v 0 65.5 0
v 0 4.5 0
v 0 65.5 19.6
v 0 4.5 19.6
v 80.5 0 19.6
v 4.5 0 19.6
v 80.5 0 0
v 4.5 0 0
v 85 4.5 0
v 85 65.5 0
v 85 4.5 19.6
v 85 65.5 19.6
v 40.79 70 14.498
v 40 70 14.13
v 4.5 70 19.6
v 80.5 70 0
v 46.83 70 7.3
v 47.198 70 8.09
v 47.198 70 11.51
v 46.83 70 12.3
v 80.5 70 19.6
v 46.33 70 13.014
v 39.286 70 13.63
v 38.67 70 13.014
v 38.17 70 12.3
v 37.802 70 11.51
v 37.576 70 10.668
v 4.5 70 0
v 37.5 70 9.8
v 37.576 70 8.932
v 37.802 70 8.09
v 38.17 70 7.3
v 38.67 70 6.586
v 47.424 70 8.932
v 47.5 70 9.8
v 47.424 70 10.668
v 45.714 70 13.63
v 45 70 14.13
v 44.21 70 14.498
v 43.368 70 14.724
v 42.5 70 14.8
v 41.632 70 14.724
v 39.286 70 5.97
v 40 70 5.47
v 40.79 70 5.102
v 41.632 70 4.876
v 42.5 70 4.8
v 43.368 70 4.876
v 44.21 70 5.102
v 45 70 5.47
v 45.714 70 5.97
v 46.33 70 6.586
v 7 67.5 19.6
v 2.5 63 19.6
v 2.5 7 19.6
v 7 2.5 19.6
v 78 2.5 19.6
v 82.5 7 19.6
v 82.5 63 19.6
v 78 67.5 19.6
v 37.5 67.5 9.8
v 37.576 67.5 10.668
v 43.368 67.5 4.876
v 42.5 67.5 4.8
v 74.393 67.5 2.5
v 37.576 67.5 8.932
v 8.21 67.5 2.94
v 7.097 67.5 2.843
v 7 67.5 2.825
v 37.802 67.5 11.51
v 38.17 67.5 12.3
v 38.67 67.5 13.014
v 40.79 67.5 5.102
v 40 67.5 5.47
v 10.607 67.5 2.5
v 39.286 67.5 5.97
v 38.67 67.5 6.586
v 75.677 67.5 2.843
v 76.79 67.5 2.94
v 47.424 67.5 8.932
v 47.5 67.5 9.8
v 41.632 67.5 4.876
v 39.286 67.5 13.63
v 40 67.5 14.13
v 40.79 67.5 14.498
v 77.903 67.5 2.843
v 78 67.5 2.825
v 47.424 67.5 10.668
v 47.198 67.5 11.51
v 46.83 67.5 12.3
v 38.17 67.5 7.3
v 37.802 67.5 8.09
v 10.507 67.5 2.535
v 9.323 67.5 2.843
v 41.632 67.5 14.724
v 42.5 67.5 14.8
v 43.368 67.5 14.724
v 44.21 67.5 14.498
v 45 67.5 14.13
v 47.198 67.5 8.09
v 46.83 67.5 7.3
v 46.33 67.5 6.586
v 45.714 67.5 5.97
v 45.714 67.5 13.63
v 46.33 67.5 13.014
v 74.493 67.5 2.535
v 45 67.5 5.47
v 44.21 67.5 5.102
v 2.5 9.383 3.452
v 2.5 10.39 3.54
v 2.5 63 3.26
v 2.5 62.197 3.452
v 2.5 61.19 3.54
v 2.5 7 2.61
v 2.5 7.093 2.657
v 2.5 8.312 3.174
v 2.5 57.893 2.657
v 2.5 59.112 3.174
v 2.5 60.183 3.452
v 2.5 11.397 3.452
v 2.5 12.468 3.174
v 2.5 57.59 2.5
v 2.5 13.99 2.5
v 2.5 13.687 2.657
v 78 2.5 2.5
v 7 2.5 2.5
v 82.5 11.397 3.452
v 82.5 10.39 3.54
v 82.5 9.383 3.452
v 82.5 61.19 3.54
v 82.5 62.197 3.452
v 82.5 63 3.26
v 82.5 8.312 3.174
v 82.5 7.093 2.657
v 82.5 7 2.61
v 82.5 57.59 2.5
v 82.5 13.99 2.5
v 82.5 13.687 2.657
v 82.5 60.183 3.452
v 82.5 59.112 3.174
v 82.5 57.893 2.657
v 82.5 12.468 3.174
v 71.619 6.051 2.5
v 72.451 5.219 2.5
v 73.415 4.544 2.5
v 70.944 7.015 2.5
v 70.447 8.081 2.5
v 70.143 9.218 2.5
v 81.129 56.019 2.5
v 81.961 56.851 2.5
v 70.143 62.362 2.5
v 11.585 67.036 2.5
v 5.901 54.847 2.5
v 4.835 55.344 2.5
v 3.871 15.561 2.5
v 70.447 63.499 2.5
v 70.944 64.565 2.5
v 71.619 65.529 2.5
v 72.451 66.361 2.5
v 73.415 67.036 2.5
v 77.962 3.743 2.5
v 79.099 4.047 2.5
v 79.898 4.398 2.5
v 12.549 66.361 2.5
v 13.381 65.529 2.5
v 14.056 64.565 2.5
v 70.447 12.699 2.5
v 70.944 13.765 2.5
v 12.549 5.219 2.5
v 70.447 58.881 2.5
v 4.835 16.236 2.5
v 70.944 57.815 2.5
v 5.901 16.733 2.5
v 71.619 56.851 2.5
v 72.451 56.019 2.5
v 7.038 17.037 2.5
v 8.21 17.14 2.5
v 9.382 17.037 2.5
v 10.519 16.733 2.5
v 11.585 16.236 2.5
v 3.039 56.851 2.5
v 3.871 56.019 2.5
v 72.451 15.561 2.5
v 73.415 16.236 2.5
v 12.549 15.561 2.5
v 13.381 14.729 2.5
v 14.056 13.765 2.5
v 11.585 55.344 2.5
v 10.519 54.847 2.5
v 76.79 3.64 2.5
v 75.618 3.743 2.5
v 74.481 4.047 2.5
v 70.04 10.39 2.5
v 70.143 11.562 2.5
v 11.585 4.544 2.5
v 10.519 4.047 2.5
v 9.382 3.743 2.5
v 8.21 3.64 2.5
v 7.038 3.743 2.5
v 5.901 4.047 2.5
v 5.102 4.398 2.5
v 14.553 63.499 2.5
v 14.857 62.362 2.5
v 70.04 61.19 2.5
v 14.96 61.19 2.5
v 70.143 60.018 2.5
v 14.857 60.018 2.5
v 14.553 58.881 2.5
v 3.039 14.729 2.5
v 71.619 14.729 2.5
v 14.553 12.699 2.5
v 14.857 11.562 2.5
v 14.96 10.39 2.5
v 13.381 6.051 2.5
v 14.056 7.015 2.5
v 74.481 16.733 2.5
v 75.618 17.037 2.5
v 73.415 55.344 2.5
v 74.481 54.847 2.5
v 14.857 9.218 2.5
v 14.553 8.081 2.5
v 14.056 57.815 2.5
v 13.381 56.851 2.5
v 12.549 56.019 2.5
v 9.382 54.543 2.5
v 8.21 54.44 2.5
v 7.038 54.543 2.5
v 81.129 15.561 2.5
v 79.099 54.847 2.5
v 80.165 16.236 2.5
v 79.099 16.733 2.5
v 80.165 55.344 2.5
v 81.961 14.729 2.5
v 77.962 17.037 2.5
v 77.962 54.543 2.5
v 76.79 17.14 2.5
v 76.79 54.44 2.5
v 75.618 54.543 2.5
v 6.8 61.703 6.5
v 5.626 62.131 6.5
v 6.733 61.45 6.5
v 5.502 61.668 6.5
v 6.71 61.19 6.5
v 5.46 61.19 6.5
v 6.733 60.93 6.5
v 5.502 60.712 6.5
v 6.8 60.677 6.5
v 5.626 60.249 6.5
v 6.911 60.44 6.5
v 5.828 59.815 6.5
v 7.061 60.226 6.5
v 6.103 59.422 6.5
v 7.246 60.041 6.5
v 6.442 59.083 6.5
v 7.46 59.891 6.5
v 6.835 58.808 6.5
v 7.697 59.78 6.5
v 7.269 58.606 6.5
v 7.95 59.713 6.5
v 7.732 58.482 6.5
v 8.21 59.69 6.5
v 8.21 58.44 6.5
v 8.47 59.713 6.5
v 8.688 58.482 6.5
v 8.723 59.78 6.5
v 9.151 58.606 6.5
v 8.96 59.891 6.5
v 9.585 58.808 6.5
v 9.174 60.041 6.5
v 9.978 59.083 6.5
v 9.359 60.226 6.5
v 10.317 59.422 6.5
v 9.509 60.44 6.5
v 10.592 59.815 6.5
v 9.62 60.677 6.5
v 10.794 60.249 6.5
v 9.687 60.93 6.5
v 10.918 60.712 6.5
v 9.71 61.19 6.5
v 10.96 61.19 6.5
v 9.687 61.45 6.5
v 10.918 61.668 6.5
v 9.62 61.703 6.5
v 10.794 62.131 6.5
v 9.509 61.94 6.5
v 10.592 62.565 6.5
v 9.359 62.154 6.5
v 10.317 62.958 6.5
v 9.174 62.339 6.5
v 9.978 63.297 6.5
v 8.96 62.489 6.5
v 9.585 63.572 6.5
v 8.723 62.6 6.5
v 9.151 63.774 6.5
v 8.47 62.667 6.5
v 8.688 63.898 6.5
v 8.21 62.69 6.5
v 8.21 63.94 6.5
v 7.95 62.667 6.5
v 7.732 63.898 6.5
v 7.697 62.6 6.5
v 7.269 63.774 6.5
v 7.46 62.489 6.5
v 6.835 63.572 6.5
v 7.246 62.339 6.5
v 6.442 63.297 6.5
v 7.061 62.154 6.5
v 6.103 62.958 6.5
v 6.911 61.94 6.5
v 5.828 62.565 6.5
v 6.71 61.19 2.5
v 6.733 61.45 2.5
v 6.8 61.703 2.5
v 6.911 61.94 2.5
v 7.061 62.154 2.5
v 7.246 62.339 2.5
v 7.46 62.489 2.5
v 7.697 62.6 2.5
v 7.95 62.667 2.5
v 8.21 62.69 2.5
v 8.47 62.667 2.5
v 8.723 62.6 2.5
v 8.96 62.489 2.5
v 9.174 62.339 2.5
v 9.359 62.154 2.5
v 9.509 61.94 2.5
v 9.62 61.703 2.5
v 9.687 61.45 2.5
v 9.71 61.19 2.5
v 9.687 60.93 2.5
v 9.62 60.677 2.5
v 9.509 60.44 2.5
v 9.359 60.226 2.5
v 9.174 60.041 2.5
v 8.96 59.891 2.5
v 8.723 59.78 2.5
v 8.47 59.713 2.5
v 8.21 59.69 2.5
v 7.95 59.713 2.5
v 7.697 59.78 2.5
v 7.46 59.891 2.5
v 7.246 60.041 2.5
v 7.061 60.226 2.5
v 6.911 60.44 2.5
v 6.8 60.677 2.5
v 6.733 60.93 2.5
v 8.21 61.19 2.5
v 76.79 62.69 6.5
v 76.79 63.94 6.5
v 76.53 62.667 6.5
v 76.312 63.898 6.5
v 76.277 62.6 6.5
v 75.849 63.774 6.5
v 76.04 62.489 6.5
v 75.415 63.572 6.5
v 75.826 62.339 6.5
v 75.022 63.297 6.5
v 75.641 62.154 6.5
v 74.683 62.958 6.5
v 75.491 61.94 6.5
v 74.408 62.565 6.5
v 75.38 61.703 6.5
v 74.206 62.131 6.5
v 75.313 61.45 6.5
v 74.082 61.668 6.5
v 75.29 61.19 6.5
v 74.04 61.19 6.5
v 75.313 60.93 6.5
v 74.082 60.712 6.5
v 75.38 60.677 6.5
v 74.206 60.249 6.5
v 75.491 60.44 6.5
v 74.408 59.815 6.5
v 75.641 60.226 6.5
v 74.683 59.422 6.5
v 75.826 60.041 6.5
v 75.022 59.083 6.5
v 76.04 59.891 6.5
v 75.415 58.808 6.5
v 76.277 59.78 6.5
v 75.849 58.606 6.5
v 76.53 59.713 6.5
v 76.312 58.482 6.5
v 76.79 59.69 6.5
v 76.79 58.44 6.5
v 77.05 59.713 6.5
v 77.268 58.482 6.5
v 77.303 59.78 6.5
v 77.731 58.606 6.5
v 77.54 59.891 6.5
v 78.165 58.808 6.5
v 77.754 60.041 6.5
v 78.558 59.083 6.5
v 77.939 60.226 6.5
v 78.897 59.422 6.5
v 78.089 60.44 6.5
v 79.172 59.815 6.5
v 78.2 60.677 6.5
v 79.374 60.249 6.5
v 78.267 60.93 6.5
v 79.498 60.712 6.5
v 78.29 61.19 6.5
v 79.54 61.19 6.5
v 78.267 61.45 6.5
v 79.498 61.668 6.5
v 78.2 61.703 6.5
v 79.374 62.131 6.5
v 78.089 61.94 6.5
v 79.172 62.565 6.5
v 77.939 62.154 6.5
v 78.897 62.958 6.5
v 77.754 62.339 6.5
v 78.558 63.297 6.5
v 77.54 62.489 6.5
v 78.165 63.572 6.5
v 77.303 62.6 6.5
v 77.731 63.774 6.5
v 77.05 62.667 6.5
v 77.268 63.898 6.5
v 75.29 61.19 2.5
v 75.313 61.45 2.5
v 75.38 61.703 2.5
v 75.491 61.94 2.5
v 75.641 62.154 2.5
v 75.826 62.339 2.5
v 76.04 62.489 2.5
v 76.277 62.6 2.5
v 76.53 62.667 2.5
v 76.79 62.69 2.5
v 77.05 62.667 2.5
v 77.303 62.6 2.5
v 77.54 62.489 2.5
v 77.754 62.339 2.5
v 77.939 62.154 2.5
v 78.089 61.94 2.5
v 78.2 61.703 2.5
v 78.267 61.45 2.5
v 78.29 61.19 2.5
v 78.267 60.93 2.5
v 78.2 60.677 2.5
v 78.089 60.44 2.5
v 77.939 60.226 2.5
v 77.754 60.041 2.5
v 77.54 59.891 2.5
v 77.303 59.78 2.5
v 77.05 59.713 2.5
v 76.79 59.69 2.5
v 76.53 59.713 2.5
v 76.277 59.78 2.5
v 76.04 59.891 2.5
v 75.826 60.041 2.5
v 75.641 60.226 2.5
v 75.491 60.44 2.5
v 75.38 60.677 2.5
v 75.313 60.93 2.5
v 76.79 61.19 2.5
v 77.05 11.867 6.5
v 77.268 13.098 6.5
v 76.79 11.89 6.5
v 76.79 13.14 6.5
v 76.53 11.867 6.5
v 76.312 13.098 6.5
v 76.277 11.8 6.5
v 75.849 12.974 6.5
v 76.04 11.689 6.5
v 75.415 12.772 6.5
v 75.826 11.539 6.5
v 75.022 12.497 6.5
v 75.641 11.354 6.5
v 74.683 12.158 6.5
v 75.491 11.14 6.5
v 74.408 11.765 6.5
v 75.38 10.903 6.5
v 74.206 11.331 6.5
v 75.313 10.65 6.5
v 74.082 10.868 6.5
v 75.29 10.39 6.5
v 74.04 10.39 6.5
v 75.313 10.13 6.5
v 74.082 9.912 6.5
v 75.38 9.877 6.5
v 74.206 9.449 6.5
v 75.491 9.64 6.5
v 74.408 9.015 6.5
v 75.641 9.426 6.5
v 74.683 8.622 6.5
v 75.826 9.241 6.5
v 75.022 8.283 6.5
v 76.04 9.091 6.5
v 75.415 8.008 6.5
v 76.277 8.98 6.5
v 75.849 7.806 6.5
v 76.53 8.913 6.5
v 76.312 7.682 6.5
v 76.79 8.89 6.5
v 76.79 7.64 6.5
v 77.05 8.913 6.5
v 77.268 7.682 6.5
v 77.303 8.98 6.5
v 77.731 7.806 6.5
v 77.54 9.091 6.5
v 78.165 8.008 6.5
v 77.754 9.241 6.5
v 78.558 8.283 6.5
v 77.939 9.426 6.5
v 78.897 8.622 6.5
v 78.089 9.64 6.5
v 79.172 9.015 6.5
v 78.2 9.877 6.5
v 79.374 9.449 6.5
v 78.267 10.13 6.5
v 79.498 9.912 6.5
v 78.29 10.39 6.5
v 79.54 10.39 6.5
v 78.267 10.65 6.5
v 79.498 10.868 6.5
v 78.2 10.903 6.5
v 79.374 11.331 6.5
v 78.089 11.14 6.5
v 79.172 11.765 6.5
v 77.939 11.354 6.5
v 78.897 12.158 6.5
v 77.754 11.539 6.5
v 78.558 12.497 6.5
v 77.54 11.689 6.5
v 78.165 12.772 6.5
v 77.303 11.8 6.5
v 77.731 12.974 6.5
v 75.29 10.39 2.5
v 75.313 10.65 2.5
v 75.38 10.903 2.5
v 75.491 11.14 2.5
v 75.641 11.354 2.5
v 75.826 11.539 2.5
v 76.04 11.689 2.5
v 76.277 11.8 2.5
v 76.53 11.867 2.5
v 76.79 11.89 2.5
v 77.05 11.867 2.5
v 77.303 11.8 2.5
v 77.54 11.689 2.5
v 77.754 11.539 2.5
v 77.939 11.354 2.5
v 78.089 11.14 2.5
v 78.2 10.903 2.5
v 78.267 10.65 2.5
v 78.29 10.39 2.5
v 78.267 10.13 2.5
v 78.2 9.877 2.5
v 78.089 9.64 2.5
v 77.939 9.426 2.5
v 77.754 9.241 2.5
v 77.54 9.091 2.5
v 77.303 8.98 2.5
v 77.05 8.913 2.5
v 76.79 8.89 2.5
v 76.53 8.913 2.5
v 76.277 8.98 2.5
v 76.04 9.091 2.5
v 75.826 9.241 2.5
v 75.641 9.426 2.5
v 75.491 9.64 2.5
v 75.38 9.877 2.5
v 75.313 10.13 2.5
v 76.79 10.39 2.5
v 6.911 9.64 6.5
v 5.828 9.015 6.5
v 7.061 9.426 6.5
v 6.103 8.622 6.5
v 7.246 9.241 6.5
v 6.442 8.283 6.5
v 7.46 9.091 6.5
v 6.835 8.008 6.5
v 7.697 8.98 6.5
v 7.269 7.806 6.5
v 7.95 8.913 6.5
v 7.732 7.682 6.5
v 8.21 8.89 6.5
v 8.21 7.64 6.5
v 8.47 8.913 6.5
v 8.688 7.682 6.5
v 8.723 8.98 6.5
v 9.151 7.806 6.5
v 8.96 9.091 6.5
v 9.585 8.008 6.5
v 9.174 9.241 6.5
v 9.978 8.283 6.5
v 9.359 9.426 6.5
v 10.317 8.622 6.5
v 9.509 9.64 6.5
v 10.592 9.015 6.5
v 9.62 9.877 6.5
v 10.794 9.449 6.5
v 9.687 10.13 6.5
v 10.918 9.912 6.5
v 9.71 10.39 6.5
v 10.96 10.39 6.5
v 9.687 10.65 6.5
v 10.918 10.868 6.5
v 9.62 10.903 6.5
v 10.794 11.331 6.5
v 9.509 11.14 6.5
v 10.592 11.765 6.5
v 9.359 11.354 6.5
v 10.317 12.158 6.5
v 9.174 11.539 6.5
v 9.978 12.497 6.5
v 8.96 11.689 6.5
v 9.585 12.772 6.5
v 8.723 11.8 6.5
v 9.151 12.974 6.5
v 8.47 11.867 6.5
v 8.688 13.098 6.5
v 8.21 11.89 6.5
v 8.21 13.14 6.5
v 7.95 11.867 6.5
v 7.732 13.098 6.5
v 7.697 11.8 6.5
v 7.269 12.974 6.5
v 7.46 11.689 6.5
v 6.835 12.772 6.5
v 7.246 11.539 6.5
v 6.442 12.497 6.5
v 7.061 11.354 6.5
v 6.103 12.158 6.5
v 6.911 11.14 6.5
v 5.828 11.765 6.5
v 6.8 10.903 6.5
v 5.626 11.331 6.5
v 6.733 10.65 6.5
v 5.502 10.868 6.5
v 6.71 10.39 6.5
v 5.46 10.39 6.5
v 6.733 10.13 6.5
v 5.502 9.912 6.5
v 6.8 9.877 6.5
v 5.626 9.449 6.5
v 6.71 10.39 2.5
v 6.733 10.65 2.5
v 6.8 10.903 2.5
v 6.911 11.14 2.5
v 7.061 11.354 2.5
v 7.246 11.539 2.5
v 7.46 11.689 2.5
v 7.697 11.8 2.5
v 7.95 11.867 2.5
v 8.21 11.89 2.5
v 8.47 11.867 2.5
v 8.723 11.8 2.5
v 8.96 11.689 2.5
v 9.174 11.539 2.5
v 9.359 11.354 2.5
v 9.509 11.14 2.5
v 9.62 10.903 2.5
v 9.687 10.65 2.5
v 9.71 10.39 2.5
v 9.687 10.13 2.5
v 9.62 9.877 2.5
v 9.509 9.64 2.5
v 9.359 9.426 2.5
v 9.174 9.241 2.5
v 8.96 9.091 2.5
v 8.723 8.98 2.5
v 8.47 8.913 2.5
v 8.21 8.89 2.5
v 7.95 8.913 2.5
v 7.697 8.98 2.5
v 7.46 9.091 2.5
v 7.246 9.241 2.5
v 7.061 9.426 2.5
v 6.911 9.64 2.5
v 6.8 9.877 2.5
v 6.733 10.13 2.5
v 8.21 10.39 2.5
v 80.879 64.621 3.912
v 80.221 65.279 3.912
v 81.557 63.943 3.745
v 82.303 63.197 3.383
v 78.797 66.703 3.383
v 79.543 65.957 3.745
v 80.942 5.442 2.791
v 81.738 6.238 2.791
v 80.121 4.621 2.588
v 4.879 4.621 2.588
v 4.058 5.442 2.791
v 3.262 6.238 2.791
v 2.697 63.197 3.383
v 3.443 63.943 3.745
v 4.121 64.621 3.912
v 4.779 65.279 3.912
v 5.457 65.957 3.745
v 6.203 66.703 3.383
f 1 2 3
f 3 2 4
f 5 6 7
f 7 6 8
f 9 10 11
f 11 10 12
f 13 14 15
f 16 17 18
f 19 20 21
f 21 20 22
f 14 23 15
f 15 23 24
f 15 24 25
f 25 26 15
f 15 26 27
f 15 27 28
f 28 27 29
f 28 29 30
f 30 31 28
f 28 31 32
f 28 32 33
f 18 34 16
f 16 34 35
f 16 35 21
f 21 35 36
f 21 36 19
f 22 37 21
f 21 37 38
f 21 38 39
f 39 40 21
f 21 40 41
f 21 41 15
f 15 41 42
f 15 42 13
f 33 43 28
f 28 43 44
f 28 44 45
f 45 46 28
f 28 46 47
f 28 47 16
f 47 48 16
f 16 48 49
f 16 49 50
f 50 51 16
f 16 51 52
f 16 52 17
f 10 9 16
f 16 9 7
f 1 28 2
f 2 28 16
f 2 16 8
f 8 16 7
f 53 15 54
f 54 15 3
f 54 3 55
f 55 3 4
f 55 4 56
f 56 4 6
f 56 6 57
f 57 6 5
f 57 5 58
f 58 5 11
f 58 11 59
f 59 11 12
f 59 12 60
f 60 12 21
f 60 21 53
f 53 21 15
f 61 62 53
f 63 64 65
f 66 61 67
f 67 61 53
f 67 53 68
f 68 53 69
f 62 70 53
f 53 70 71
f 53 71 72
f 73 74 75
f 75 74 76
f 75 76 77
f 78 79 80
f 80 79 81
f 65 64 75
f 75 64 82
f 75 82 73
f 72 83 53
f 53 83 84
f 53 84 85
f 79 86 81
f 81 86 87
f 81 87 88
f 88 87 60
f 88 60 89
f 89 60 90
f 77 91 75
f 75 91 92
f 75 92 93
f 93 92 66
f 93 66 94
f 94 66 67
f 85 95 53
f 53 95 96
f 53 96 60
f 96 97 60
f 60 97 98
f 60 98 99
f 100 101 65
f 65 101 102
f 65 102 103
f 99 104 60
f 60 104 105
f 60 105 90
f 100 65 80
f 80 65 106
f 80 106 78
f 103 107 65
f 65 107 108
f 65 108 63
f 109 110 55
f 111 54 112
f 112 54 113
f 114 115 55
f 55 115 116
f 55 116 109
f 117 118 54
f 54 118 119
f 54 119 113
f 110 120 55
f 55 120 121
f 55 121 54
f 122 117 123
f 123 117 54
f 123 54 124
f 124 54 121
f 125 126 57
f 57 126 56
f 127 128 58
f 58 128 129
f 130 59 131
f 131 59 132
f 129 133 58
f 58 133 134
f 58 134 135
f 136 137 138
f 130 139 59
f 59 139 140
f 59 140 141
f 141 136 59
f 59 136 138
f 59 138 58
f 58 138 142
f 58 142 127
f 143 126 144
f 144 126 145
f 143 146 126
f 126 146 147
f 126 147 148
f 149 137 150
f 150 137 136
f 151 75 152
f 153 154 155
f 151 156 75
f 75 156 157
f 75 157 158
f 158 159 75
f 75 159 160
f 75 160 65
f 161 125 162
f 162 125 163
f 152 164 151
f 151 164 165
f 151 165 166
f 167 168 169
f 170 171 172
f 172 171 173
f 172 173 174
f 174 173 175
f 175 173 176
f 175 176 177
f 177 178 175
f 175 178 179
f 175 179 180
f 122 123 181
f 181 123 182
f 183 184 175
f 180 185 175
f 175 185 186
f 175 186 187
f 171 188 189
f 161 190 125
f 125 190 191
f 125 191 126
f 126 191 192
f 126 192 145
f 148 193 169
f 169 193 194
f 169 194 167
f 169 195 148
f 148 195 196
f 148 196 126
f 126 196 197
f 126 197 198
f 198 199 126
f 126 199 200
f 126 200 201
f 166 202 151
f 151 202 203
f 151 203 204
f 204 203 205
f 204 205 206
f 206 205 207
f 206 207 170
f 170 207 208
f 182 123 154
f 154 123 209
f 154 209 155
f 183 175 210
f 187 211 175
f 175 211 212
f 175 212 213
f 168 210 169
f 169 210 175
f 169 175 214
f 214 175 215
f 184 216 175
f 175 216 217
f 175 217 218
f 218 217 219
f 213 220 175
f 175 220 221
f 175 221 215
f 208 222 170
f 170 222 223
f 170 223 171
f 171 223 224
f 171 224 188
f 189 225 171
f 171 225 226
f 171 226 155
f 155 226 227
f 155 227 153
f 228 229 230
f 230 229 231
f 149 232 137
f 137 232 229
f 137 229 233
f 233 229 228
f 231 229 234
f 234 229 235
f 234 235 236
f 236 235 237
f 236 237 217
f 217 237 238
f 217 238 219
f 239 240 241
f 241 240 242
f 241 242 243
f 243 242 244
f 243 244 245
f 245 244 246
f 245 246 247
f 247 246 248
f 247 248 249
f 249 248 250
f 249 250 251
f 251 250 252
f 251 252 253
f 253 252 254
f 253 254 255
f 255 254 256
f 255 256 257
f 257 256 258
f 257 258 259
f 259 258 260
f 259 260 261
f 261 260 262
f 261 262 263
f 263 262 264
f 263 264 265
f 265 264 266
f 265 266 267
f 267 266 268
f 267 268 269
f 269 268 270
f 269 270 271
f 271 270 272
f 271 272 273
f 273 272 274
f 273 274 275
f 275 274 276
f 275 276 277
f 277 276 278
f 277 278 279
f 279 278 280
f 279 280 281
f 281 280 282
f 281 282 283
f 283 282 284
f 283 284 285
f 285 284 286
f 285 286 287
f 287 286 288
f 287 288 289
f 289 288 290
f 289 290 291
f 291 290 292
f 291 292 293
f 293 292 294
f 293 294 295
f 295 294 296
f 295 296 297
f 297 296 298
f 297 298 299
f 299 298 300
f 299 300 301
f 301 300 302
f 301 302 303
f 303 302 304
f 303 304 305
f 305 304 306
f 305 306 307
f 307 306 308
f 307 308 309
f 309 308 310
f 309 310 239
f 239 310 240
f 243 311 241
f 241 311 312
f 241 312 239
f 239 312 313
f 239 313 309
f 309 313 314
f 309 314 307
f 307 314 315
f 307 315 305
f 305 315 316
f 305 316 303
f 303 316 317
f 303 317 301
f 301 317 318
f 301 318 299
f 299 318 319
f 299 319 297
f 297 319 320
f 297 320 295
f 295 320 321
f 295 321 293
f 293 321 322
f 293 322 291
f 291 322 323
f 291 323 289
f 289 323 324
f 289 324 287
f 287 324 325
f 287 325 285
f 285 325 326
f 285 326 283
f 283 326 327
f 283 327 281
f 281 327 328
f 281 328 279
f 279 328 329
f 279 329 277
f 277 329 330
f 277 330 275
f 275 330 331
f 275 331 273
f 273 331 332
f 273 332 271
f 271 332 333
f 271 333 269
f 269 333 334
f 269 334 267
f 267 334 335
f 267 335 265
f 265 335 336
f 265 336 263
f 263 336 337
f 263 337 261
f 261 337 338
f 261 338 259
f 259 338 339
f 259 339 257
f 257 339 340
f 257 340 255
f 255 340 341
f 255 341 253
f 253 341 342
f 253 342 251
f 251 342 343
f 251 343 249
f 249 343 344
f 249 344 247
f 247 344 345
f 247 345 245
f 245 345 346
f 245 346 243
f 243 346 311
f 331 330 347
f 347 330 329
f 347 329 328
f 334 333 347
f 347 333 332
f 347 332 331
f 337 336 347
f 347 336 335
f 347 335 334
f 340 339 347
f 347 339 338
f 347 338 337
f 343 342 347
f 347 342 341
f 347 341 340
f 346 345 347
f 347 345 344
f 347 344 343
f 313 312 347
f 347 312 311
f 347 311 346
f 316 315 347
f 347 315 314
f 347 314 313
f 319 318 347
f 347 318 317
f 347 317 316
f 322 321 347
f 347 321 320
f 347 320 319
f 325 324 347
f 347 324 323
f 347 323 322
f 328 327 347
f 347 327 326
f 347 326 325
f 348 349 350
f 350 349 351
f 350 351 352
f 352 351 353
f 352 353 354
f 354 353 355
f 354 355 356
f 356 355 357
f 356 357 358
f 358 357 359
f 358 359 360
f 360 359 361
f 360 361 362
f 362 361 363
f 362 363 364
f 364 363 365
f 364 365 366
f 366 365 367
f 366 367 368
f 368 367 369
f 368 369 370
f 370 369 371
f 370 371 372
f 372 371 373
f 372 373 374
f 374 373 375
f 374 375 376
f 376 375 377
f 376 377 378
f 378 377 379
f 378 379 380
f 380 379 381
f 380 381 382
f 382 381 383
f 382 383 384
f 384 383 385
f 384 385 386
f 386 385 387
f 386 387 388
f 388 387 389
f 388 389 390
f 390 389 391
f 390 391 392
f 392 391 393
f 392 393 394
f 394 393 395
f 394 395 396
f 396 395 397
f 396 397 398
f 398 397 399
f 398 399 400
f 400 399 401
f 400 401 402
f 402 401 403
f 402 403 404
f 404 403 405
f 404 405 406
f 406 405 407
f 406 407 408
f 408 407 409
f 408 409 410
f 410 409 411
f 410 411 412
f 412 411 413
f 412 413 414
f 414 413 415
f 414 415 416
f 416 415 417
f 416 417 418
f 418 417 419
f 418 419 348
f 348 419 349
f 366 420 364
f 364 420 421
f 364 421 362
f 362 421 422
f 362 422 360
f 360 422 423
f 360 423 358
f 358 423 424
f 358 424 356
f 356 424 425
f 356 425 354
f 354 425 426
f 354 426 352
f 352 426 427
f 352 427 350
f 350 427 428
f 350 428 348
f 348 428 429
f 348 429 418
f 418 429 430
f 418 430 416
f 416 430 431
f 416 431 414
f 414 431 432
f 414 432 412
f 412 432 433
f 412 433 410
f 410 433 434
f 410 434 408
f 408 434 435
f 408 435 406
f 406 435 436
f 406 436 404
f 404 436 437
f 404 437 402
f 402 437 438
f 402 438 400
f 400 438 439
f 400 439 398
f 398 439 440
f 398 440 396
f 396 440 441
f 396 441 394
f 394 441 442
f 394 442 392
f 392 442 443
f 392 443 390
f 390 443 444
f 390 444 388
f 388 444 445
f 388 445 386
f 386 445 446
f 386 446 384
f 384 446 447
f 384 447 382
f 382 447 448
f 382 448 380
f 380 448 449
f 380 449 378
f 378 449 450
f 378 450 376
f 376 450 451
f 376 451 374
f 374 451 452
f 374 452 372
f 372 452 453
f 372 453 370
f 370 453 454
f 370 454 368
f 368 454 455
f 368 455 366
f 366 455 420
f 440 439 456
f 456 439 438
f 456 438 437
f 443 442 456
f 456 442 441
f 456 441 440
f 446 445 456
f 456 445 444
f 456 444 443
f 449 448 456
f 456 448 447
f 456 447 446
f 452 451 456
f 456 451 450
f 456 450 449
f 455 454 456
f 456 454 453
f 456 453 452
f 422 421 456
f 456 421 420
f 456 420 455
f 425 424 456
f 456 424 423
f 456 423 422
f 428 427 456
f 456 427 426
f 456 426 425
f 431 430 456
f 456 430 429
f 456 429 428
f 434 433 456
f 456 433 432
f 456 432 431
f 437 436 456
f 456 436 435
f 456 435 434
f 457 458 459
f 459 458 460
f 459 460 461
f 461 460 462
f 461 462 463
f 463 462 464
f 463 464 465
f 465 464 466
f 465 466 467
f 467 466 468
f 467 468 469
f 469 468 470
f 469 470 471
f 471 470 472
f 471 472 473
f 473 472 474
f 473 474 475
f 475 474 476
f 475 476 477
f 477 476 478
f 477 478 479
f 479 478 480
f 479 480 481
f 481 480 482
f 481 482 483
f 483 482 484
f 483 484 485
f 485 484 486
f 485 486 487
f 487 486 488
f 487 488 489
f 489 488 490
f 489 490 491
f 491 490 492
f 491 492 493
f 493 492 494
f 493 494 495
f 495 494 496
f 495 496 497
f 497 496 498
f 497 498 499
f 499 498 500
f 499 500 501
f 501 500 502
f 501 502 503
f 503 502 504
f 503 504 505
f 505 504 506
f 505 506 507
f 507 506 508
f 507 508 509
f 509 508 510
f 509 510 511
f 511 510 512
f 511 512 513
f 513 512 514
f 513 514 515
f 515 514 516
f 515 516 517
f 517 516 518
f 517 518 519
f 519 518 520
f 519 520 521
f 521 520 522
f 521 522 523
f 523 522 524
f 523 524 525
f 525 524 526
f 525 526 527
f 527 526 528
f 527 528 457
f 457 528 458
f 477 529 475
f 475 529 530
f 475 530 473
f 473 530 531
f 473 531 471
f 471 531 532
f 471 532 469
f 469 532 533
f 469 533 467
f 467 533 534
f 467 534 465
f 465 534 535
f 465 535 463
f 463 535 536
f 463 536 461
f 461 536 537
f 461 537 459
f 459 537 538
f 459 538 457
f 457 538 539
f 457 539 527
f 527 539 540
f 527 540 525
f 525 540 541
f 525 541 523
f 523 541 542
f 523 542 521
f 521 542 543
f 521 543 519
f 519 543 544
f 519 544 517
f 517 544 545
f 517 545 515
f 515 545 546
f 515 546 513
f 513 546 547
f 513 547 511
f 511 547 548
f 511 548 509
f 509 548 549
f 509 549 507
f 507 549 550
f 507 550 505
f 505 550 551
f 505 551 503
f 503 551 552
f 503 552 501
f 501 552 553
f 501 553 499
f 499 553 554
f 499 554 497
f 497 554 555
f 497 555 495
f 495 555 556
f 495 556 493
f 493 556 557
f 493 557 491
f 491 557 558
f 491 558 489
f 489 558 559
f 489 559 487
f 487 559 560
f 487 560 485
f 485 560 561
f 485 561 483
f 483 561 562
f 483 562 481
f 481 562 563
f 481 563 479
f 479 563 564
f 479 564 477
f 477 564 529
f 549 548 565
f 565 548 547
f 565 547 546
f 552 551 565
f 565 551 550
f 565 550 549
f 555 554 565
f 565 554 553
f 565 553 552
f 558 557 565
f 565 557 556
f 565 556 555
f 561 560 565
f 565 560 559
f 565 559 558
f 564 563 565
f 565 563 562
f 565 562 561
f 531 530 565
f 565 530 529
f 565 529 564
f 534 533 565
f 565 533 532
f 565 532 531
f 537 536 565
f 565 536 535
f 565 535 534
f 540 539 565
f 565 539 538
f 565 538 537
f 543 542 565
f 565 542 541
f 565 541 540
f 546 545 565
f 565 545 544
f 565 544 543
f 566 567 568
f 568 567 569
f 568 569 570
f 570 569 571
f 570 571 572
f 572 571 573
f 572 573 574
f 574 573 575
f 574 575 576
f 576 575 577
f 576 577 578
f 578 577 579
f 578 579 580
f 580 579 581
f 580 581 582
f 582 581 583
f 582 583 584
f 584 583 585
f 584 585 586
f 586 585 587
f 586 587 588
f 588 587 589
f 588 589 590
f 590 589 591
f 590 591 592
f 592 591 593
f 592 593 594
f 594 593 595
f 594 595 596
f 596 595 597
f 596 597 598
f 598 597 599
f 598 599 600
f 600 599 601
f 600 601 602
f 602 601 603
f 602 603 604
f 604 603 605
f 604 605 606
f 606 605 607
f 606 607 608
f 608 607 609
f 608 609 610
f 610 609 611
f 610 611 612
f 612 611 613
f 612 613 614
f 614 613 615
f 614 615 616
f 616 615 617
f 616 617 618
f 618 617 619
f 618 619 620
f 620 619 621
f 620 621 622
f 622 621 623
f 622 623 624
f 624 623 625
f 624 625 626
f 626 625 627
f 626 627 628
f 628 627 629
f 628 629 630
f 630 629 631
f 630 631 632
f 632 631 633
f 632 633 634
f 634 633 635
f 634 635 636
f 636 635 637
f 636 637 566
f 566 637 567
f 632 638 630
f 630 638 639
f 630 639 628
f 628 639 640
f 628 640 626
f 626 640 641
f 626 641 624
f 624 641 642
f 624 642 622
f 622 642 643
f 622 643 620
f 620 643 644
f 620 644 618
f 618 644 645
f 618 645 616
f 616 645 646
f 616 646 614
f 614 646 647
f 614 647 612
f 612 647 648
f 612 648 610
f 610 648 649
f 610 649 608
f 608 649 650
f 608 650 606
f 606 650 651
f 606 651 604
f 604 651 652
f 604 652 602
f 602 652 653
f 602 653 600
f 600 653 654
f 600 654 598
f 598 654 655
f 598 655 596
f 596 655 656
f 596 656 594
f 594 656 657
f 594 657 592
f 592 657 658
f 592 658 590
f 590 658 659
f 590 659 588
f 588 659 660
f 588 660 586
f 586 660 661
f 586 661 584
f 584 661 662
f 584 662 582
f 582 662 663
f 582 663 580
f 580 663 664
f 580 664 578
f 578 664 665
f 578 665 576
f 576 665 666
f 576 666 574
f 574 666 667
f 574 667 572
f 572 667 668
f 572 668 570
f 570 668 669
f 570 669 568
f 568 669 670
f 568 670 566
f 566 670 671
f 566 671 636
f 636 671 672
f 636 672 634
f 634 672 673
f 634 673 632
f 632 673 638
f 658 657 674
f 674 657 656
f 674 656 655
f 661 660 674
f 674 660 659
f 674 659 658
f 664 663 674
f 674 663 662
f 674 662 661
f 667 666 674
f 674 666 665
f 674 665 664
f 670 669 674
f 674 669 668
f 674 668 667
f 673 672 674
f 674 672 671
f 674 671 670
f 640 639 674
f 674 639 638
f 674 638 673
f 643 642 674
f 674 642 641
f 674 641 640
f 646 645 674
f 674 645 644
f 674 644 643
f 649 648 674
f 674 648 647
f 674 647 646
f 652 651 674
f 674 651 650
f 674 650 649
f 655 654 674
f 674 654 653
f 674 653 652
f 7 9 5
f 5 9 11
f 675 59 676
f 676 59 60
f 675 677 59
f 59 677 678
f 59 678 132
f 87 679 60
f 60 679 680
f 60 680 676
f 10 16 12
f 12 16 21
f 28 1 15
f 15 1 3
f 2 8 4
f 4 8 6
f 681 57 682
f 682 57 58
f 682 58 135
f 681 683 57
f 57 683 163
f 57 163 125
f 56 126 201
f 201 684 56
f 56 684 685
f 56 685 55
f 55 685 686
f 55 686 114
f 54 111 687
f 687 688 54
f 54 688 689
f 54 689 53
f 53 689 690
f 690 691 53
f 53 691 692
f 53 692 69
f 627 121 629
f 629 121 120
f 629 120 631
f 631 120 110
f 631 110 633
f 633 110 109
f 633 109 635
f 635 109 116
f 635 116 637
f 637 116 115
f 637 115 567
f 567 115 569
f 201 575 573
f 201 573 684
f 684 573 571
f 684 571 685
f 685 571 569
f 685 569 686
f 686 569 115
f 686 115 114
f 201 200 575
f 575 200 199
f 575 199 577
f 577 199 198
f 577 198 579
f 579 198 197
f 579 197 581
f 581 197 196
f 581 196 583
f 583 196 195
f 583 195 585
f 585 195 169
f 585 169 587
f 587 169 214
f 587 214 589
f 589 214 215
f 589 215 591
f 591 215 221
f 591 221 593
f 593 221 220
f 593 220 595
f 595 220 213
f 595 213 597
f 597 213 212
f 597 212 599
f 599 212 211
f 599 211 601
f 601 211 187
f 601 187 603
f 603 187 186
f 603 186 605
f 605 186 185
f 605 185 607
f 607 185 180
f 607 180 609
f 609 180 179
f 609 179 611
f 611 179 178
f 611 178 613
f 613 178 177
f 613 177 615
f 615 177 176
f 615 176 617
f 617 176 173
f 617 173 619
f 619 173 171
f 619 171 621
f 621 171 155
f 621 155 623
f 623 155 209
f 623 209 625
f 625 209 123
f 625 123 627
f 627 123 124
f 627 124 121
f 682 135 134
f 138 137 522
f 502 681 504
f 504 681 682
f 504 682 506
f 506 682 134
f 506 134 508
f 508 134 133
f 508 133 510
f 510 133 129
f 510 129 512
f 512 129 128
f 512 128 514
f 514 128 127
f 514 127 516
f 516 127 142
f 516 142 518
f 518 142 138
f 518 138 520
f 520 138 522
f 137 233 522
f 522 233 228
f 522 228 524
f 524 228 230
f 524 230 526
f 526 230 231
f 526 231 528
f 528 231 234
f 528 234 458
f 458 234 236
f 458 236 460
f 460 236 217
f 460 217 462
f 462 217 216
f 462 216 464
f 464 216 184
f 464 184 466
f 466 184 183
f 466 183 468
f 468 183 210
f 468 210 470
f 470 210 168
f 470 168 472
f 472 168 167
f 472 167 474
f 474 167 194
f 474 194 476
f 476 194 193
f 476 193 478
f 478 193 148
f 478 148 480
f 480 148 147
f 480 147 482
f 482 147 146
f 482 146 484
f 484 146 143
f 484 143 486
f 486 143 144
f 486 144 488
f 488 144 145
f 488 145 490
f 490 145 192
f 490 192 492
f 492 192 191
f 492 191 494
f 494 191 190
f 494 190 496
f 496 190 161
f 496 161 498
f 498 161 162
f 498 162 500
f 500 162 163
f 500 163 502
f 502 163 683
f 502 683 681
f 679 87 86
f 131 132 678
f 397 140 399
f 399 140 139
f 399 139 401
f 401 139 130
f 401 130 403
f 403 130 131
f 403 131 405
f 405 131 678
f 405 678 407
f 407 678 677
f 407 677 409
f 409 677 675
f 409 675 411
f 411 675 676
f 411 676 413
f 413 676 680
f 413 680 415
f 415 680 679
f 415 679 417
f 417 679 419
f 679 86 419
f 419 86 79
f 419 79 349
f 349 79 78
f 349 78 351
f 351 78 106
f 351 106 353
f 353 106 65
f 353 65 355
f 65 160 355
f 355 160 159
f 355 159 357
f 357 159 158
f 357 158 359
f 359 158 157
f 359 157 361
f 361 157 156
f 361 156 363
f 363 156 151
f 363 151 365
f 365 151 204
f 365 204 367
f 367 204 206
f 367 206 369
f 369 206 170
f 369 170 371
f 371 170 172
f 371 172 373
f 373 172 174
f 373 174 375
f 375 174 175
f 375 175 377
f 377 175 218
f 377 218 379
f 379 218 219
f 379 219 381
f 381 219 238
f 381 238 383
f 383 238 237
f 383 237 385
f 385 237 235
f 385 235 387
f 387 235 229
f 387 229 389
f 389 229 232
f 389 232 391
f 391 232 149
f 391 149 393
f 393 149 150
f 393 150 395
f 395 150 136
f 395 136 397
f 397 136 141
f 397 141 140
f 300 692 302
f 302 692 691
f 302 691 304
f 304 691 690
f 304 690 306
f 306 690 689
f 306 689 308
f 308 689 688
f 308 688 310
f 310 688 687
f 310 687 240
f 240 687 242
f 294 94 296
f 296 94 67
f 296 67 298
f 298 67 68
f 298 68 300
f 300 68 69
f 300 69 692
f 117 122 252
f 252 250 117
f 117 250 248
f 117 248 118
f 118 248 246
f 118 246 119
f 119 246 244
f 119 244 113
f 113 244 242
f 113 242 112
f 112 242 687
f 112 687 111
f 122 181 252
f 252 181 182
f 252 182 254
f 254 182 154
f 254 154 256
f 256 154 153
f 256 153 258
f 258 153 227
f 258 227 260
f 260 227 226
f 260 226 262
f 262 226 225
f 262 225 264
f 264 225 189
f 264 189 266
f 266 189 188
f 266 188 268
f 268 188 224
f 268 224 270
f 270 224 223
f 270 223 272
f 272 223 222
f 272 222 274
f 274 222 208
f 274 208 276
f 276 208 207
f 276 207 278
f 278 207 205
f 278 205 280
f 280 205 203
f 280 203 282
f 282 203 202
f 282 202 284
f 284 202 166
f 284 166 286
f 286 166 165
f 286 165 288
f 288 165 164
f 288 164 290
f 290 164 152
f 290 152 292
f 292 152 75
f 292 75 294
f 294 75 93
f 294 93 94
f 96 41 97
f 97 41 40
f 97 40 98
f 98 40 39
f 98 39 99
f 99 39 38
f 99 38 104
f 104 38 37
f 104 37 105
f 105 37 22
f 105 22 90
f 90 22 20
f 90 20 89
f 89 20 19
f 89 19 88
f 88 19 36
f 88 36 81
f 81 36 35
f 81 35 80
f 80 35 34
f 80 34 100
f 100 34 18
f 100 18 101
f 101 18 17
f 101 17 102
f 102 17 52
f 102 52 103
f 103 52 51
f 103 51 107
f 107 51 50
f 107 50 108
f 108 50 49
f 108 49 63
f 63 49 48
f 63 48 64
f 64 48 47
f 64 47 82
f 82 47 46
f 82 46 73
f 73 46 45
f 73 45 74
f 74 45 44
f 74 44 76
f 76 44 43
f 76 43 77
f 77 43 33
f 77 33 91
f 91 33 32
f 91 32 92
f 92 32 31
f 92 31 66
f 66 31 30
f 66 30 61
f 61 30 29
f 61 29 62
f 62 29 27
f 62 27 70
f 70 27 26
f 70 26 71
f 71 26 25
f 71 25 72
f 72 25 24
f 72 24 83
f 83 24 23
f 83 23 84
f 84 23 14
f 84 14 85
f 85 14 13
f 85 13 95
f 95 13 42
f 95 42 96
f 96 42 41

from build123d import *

# Parameters (mm, degrees)
ESQUISSE1_W             = 85
ESQUISSE1_H             = 70
BOSS_EXTRU_1_DEPTH      = 2.5
ESQUISSE2_W             = 85
ESQUISSE2_H             = 70
ESQUISSE2_W_2           = 80
ESQUISSE2_H_2           = 65
BOSS_EXTRU_2_DEPTH      = 17.1
ESQUISSE3_R             = 2.75
ESQUISSE3_R_2           = 1.5
BOSS_EXTRU_3_DEPTH      = 4
CHANFREIN1_SIZE         = 4.5
CHANFREIN2_SIZE         = 4
ESQUISSE4_R             = 5
ENL_V_MAT_EXTRU_1_DEPTH = 10


with BuildPart() as part:
    # Esquisse1 → Boss.-Extru.1 (new body)
    with BuildSketch(Plane.XY):
        with Locations((42.5, 35)):
            Rectangle(ESQUISSE1_W, ESQUISSE1_H)
    extrude(amount=BOSS_EXTRU_1_DEPTH)

    # Esquisse2 → Boss.-Extru.2 (add)
    with BuildSketch(Plane.XY.offset(2.5)):
        with Locations((42.5, 35)):
            Rectangle(ESQUISSE2_W, ESQUISSE2_H)
        with Locations((42.5, 35)):
            Rectangle(ESQUISSE2_W_2, ESQUISSE2_H_2, mode=Mode.SUBTRACT)
    extrude(amount=BOSS_EXTRU_2_DEPTH)

    # Esquisse3 → Boss.-Extru.3 (add)
    # profile 1 of 4: a face of its own
    with BuildSketch(Plane.XY.offset(2.5)):
        with Locations(Location((8.21, 61.19, 0), (0, 0, 180))):
            Circle(ESQUISSE3_R)
        with Locations((8.21, 61.19)):
            Circle(ESQUISSE3_R_2, mode=Mode.SUBTRACT)
    # profile 2 of 4: a face of its own
    with BuildSketch(Plane.XY.offset(2.5)):
        with Locations(Location((76.79, 61.19, 0), (0, 0, 180))):
            Circle(ESQUISSE3_R)
        with Locations((76.79, 61.19)):
            Circle(ESQUISSE3_R_2, mode=Mode.SUBTRACT)
    # profile 3 of 4: a face of its own
    with BuildSketch(Plane.XY.offset(2.5)):
        with Locations(Location((76.79, 10.39, 0), (0, 0, 180))):
            Circle(ESQUISSE3_R)
        with Locations((76.79, 10.39)):
            Circle(ESQUISSE3_R_2, mode=Mode.SUBTRACT)
    # profile 4 of 4: a face of its own
    with BuildSketch(Plane.XY.offset(2.5)):
        with Locations(Location((8.21, 10.39, 0), (0, 0, 180))):
            Circle(ESQUISSE3_R)
        with Locations((8.21, 10.39)):
            Circle(ESQUISSE3_R_2, mode=Mode.SUBTRACT)
    extrude(amount=BOSS_EXTRU_3_DEPTH)

    # Chanfrein1
    chanfrein1_edges = [part.edges().sort_by_distance(p)[0] for p in [
        (2.5, 67.5, 11.05),
        (2.5, 2.5, 11.05),
        (82.5, 2.5, 11.05),
        (82.5, 67.5, 11.05),
        (0, 70, 9.8),
        (85, 70, 9.8),
        (85, 0, 9.8),
        (0, 0, 9.8),
    ]]
    chamfer(chanfrein1_edges, length=CHANFREIN1_SIZE)

    # Chanfrein2
    # the kernel refuses this chamfer: 4 mm, written as the material it adds along each edge
    with BuildSketch(Plane(origin=(8.21, 10.39, 2.5), x_dir=(-1, 0, 0), z_dir=(0, 1, 0))) as chanfrein2_piece_1_section:
        Polygon((2.75 + CHANFREIN2_SIZE, 0), (2.75, CHANFREIN2_SIZE), (2.75, 0), align=None)
    chanfrein2_piece_1 = revolve(axis=Axis((8.21, 10.39, 2.5), (0, 0, 1)), mode=Mode.PRIVATE)
    chanfrein2_piece_1 = split(chanfrein2_piece_1, bisect_by=Plane(origin=(12.973571243, 10.39, 6.5), z_dir=(0, 0, -1)), keep=Keep.TOP, mode=Mode.PRIVATE)
    add(chanfrein2_piece_1)
    with BuildSketch(Plane(origin=(76.79, 10.39, 2.5), x_dir=(-1, 0, 0), z_dir=(0, 1, 0))) as chanfrein2_piece_2_section:
        Polygon((2.75 + CHANFREIN2_SIZE, 0), (2.75, CHANFREIN2_SIZE), (2.75, 0), align=None)
    chanfrein2_piece_2 = revolve(axis=Axis((76.79, 10.39, 2.5), (0, 0, 1)), mode=Mode.PRIVATE)
    chanfrein2_piece_2 = split(chanfrein2_piece_2, bisect_by=Plane(origin=(81.553571243, 10.39, 6.5), z_dir=(0, 0, -1)), keep=Keep.TOP, mode=Mode.PRIVATE)
    add(chanfrein2_piece_2)
    with BuildSketch(Plane(origin=(76.79, 61.19, 2.5), x_dir=(-1, 0, 0), z_dir=(0, 1, 0))) as chanfrein2_piece_3_section:
        Polygon((2.75 + CHANFREIN2_SIZE, 0), (2.75, CHANFREIN2_SIZE), (2.75, 0), align=None)
    chanfrein2_piece_3 = revolve(axis=Axis((76.79, 61.19, 2.5), (0, 0, 1)), mode=Mode.PRIVATE)
    chanfrein2_piece_3 = split(chanfrein2_piece_3, bisect_by=Plane(origin=(81.553571243, 61.19, 6.5), z_dir=(0, 0, -1)), keep=Keep.TOP, mode=Mode.PRIVATE)
    add(chanfrein2_piece_3)
    with BuildSketch(Plane(origin=(8.21, 61.19, 2.5), x_dir=(-1, 0, 0), z_dir=(0, 1, 0))) as chanfrein2_piece_4_section:
        Polygon((2.75 + CHANFREIN2_SIZE, 0), (2.75, CHANFREIN2_SIZE), (2.75, 0), align=None)
    chanfrein2_piece_4 = revolve(axis=Axis((8.21, 61.19, 2.5), (0, 0, 1)), mode=Mode.PRIVATE)
    chanfrein2_piece_4 = split(chanfrein2_piece_4, bisect_by=Plane(origin=(12.973571243, 61.19, 6.5), z_dir=(0, 0, -1)), keep=Keep.TOP, mode=Mode.PRIVATE)
    add(chanfrein2_piece_4)

    # Esquisse4 → Enlèv. mat.-Extru.1 (cut)
    with BuildSketch(Plane(origin=(0, 70, 0), x_dir=(1, 0, 0), z_dir=(0, 1, 0))):
        with Locations(Location((42.5, -9.8, 0), (0, 0, 270))):
            Circle(ESQUISSE4_R)
    extrude(amount=-ENL_V_MAT_EXTRU_1_DEPTH, mode=Mode.SUBTRACT)


solid = part.part
